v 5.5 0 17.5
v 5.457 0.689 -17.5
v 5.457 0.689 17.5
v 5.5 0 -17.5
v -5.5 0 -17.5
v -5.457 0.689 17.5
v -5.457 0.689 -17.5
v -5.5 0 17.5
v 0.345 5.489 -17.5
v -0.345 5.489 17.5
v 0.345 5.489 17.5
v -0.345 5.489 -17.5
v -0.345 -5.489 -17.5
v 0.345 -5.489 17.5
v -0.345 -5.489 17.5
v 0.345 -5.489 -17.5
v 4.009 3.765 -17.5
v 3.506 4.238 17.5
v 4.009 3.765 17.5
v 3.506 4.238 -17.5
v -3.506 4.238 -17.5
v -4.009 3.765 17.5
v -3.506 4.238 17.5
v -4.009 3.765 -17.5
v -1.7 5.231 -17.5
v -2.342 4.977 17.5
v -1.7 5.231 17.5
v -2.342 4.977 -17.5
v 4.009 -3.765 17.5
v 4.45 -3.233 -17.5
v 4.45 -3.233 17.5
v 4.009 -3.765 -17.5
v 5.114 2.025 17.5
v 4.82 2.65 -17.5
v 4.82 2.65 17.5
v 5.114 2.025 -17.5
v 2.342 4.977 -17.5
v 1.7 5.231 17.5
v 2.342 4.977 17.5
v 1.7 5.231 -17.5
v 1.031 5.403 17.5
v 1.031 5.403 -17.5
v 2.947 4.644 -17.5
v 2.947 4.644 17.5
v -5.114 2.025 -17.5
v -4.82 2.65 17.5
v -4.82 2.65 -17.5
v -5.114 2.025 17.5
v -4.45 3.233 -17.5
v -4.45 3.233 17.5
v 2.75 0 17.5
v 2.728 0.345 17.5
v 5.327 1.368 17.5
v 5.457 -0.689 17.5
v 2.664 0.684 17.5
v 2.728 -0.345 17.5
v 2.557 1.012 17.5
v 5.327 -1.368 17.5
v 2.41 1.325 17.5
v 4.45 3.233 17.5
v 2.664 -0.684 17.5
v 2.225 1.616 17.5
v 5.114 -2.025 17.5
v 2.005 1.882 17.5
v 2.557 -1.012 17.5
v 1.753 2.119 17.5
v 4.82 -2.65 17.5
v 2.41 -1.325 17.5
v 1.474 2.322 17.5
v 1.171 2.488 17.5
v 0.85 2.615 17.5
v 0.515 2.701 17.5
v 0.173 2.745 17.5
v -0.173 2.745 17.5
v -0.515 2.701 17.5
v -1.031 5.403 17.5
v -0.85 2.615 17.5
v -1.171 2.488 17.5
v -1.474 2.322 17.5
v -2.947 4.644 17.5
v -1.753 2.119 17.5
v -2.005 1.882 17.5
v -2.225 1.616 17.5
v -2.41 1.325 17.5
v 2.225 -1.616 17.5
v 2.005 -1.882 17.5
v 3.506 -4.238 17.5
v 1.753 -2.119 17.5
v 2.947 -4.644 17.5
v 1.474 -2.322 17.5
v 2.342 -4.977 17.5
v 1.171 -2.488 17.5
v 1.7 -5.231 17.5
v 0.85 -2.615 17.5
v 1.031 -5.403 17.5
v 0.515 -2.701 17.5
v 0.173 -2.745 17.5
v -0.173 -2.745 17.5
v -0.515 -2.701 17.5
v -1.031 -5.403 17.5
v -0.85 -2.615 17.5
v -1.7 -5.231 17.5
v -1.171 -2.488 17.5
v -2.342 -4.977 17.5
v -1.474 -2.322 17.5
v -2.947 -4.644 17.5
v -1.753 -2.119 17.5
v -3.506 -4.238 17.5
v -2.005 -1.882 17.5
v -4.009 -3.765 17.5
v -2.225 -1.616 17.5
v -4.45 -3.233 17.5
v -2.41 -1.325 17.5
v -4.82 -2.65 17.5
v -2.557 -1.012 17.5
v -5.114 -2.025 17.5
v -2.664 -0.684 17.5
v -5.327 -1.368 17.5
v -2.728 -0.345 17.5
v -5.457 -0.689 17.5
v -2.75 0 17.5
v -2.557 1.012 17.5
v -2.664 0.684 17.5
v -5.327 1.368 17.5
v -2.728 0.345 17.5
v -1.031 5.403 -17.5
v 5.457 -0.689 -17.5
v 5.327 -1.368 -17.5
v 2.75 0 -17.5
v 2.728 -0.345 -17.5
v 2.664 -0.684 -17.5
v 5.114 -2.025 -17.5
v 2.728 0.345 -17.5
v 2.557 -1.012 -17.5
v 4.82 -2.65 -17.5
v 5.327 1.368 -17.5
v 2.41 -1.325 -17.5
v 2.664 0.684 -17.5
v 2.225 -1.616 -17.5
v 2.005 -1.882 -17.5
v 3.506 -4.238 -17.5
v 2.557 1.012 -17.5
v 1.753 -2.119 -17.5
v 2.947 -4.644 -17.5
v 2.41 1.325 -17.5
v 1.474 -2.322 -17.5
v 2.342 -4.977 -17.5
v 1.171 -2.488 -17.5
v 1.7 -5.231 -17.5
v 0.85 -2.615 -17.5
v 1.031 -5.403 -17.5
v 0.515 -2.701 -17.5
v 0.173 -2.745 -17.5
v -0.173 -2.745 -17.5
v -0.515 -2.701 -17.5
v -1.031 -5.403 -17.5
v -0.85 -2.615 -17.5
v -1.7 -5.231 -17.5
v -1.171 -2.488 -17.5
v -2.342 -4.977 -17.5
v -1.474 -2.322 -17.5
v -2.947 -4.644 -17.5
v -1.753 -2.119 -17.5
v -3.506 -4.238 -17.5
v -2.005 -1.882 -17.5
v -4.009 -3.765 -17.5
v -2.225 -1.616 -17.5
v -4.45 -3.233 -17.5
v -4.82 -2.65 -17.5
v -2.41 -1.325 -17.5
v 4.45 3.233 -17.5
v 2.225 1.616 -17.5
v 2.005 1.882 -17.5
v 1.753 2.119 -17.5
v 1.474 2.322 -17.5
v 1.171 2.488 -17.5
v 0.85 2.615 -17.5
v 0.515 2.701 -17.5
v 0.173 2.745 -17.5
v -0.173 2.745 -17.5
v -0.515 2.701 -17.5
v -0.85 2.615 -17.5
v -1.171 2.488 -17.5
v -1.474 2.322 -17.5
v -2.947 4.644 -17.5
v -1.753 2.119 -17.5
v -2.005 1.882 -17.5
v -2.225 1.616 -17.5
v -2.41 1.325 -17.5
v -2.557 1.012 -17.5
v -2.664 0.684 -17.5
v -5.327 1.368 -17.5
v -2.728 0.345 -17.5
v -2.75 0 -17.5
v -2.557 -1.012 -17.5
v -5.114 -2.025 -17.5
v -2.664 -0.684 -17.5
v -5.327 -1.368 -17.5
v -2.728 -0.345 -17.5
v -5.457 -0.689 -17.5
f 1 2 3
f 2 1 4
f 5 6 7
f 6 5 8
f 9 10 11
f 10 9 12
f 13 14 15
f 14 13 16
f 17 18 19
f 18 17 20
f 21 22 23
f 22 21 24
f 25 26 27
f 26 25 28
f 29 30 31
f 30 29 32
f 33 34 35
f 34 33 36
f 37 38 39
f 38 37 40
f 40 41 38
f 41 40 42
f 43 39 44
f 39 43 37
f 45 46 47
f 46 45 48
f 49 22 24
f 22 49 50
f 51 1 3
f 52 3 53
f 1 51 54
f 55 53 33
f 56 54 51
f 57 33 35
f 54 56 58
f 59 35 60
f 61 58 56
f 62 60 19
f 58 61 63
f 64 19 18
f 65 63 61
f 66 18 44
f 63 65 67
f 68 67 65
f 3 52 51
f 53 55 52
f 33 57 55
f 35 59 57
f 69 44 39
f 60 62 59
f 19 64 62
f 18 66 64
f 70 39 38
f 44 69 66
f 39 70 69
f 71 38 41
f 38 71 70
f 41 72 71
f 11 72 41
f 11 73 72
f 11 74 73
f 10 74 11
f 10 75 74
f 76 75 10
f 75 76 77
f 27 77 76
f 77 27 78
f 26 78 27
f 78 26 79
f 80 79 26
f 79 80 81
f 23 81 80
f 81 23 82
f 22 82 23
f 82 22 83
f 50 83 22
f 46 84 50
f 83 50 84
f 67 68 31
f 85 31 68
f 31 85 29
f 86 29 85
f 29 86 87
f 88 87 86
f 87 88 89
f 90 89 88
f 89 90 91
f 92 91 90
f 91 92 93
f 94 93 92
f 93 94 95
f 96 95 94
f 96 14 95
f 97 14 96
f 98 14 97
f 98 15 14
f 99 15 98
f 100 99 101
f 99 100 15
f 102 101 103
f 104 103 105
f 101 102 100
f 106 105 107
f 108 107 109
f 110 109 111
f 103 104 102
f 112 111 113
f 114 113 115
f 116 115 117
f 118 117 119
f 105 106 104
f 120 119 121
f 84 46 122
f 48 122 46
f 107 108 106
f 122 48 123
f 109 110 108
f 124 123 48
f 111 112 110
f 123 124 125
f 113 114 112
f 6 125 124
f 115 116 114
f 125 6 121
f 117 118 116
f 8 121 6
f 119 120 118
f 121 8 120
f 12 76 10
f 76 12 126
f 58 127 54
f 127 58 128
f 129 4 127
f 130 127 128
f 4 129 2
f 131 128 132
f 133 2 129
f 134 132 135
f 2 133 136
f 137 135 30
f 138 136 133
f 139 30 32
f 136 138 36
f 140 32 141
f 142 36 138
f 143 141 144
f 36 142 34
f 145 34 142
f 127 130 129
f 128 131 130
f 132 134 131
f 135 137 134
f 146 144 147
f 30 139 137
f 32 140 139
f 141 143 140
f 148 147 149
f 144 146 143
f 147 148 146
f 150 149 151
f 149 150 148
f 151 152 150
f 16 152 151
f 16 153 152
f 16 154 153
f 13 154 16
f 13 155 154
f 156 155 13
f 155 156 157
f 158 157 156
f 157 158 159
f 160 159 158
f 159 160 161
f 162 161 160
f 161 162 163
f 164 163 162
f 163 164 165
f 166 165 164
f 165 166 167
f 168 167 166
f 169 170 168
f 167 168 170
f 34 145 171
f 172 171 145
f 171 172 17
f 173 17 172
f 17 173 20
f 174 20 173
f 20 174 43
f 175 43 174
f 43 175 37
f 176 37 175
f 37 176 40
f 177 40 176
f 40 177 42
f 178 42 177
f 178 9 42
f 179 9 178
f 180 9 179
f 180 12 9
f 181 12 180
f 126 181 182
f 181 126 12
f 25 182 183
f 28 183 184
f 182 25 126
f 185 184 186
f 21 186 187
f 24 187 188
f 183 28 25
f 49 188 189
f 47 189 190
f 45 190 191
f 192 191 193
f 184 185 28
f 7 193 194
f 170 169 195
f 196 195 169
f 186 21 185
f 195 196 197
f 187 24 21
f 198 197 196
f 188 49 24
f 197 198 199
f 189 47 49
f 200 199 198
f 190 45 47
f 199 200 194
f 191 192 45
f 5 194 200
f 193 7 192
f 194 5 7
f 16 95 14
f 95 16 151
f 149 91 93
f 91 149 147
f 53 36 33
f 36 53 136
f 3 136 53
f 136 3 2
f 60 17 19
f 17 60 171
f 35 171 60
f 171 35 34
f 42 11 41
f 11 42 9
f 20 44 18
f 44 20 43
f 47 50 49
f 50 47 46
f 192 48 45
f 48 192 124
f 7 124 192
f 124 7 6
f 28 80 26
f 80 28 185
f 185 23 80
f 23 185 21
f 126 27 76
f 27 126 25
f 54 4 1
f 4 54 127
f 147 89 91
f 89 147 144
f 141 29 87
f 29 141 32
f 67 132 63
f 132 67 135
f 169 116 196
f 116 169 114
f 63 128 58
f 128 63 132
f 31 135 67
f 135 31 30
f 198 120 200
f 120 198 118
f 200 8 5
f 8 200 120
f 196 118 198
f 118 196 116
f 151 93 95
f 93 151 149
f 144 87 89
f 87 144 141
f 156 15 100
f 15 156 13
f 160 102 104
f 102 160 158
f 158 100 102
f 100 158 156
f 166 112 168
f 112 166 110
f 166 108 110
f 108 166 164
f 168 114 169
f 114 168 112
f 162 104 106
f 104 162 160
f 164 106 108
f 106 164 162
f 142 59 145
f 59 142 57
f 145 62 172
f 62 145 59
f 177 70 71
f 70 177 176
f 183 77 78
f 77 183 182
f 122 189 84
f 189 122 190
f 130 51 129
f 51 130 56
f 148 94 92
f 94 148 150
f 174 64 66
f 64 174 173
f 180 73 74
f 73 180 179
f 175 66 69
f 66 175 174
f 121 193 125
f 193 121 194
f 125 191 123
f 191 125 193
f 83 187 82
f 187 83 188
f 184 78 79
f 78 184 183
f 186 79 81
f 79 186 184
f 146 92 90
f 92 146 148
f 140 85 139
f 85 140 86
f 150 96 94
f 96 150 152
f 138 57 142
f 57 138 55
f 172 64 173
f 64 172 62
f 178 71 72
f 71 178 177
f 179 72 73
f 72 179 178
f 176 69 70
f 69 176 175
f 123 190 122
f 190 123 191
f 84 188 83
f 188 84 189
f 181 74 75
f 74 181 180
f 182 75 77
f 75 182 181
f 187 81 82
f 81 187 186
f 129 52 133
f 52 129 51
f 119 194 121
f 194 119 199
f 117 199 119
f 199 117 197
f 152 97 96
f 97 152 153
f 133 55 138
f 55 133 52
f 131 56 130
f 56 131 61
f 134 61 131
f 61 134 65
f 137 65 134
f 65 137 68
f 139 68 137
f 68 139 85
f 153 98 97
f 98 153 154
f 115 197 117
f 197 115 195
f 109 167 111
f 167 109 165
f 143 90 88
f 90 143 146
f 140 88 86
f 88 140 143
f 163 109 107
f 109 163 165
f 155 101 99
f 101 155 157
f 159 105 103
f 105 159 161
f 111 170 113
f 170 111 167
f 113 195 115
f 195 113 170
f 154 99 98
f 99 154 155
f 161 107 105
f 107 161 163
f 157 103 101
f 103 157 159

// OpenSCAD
$fn = 50;


difference() {
	union() {
		translate(v = [0, 0, -17.5000000000]) {
			cylinder(h = 35, r = 5.5000000000);
		}
	}
	union() {
		translate(v = [0, 0, -100.0000000000]) {
			cylinder(h = 200, r = 2.7500000000);
		}
	}
}
